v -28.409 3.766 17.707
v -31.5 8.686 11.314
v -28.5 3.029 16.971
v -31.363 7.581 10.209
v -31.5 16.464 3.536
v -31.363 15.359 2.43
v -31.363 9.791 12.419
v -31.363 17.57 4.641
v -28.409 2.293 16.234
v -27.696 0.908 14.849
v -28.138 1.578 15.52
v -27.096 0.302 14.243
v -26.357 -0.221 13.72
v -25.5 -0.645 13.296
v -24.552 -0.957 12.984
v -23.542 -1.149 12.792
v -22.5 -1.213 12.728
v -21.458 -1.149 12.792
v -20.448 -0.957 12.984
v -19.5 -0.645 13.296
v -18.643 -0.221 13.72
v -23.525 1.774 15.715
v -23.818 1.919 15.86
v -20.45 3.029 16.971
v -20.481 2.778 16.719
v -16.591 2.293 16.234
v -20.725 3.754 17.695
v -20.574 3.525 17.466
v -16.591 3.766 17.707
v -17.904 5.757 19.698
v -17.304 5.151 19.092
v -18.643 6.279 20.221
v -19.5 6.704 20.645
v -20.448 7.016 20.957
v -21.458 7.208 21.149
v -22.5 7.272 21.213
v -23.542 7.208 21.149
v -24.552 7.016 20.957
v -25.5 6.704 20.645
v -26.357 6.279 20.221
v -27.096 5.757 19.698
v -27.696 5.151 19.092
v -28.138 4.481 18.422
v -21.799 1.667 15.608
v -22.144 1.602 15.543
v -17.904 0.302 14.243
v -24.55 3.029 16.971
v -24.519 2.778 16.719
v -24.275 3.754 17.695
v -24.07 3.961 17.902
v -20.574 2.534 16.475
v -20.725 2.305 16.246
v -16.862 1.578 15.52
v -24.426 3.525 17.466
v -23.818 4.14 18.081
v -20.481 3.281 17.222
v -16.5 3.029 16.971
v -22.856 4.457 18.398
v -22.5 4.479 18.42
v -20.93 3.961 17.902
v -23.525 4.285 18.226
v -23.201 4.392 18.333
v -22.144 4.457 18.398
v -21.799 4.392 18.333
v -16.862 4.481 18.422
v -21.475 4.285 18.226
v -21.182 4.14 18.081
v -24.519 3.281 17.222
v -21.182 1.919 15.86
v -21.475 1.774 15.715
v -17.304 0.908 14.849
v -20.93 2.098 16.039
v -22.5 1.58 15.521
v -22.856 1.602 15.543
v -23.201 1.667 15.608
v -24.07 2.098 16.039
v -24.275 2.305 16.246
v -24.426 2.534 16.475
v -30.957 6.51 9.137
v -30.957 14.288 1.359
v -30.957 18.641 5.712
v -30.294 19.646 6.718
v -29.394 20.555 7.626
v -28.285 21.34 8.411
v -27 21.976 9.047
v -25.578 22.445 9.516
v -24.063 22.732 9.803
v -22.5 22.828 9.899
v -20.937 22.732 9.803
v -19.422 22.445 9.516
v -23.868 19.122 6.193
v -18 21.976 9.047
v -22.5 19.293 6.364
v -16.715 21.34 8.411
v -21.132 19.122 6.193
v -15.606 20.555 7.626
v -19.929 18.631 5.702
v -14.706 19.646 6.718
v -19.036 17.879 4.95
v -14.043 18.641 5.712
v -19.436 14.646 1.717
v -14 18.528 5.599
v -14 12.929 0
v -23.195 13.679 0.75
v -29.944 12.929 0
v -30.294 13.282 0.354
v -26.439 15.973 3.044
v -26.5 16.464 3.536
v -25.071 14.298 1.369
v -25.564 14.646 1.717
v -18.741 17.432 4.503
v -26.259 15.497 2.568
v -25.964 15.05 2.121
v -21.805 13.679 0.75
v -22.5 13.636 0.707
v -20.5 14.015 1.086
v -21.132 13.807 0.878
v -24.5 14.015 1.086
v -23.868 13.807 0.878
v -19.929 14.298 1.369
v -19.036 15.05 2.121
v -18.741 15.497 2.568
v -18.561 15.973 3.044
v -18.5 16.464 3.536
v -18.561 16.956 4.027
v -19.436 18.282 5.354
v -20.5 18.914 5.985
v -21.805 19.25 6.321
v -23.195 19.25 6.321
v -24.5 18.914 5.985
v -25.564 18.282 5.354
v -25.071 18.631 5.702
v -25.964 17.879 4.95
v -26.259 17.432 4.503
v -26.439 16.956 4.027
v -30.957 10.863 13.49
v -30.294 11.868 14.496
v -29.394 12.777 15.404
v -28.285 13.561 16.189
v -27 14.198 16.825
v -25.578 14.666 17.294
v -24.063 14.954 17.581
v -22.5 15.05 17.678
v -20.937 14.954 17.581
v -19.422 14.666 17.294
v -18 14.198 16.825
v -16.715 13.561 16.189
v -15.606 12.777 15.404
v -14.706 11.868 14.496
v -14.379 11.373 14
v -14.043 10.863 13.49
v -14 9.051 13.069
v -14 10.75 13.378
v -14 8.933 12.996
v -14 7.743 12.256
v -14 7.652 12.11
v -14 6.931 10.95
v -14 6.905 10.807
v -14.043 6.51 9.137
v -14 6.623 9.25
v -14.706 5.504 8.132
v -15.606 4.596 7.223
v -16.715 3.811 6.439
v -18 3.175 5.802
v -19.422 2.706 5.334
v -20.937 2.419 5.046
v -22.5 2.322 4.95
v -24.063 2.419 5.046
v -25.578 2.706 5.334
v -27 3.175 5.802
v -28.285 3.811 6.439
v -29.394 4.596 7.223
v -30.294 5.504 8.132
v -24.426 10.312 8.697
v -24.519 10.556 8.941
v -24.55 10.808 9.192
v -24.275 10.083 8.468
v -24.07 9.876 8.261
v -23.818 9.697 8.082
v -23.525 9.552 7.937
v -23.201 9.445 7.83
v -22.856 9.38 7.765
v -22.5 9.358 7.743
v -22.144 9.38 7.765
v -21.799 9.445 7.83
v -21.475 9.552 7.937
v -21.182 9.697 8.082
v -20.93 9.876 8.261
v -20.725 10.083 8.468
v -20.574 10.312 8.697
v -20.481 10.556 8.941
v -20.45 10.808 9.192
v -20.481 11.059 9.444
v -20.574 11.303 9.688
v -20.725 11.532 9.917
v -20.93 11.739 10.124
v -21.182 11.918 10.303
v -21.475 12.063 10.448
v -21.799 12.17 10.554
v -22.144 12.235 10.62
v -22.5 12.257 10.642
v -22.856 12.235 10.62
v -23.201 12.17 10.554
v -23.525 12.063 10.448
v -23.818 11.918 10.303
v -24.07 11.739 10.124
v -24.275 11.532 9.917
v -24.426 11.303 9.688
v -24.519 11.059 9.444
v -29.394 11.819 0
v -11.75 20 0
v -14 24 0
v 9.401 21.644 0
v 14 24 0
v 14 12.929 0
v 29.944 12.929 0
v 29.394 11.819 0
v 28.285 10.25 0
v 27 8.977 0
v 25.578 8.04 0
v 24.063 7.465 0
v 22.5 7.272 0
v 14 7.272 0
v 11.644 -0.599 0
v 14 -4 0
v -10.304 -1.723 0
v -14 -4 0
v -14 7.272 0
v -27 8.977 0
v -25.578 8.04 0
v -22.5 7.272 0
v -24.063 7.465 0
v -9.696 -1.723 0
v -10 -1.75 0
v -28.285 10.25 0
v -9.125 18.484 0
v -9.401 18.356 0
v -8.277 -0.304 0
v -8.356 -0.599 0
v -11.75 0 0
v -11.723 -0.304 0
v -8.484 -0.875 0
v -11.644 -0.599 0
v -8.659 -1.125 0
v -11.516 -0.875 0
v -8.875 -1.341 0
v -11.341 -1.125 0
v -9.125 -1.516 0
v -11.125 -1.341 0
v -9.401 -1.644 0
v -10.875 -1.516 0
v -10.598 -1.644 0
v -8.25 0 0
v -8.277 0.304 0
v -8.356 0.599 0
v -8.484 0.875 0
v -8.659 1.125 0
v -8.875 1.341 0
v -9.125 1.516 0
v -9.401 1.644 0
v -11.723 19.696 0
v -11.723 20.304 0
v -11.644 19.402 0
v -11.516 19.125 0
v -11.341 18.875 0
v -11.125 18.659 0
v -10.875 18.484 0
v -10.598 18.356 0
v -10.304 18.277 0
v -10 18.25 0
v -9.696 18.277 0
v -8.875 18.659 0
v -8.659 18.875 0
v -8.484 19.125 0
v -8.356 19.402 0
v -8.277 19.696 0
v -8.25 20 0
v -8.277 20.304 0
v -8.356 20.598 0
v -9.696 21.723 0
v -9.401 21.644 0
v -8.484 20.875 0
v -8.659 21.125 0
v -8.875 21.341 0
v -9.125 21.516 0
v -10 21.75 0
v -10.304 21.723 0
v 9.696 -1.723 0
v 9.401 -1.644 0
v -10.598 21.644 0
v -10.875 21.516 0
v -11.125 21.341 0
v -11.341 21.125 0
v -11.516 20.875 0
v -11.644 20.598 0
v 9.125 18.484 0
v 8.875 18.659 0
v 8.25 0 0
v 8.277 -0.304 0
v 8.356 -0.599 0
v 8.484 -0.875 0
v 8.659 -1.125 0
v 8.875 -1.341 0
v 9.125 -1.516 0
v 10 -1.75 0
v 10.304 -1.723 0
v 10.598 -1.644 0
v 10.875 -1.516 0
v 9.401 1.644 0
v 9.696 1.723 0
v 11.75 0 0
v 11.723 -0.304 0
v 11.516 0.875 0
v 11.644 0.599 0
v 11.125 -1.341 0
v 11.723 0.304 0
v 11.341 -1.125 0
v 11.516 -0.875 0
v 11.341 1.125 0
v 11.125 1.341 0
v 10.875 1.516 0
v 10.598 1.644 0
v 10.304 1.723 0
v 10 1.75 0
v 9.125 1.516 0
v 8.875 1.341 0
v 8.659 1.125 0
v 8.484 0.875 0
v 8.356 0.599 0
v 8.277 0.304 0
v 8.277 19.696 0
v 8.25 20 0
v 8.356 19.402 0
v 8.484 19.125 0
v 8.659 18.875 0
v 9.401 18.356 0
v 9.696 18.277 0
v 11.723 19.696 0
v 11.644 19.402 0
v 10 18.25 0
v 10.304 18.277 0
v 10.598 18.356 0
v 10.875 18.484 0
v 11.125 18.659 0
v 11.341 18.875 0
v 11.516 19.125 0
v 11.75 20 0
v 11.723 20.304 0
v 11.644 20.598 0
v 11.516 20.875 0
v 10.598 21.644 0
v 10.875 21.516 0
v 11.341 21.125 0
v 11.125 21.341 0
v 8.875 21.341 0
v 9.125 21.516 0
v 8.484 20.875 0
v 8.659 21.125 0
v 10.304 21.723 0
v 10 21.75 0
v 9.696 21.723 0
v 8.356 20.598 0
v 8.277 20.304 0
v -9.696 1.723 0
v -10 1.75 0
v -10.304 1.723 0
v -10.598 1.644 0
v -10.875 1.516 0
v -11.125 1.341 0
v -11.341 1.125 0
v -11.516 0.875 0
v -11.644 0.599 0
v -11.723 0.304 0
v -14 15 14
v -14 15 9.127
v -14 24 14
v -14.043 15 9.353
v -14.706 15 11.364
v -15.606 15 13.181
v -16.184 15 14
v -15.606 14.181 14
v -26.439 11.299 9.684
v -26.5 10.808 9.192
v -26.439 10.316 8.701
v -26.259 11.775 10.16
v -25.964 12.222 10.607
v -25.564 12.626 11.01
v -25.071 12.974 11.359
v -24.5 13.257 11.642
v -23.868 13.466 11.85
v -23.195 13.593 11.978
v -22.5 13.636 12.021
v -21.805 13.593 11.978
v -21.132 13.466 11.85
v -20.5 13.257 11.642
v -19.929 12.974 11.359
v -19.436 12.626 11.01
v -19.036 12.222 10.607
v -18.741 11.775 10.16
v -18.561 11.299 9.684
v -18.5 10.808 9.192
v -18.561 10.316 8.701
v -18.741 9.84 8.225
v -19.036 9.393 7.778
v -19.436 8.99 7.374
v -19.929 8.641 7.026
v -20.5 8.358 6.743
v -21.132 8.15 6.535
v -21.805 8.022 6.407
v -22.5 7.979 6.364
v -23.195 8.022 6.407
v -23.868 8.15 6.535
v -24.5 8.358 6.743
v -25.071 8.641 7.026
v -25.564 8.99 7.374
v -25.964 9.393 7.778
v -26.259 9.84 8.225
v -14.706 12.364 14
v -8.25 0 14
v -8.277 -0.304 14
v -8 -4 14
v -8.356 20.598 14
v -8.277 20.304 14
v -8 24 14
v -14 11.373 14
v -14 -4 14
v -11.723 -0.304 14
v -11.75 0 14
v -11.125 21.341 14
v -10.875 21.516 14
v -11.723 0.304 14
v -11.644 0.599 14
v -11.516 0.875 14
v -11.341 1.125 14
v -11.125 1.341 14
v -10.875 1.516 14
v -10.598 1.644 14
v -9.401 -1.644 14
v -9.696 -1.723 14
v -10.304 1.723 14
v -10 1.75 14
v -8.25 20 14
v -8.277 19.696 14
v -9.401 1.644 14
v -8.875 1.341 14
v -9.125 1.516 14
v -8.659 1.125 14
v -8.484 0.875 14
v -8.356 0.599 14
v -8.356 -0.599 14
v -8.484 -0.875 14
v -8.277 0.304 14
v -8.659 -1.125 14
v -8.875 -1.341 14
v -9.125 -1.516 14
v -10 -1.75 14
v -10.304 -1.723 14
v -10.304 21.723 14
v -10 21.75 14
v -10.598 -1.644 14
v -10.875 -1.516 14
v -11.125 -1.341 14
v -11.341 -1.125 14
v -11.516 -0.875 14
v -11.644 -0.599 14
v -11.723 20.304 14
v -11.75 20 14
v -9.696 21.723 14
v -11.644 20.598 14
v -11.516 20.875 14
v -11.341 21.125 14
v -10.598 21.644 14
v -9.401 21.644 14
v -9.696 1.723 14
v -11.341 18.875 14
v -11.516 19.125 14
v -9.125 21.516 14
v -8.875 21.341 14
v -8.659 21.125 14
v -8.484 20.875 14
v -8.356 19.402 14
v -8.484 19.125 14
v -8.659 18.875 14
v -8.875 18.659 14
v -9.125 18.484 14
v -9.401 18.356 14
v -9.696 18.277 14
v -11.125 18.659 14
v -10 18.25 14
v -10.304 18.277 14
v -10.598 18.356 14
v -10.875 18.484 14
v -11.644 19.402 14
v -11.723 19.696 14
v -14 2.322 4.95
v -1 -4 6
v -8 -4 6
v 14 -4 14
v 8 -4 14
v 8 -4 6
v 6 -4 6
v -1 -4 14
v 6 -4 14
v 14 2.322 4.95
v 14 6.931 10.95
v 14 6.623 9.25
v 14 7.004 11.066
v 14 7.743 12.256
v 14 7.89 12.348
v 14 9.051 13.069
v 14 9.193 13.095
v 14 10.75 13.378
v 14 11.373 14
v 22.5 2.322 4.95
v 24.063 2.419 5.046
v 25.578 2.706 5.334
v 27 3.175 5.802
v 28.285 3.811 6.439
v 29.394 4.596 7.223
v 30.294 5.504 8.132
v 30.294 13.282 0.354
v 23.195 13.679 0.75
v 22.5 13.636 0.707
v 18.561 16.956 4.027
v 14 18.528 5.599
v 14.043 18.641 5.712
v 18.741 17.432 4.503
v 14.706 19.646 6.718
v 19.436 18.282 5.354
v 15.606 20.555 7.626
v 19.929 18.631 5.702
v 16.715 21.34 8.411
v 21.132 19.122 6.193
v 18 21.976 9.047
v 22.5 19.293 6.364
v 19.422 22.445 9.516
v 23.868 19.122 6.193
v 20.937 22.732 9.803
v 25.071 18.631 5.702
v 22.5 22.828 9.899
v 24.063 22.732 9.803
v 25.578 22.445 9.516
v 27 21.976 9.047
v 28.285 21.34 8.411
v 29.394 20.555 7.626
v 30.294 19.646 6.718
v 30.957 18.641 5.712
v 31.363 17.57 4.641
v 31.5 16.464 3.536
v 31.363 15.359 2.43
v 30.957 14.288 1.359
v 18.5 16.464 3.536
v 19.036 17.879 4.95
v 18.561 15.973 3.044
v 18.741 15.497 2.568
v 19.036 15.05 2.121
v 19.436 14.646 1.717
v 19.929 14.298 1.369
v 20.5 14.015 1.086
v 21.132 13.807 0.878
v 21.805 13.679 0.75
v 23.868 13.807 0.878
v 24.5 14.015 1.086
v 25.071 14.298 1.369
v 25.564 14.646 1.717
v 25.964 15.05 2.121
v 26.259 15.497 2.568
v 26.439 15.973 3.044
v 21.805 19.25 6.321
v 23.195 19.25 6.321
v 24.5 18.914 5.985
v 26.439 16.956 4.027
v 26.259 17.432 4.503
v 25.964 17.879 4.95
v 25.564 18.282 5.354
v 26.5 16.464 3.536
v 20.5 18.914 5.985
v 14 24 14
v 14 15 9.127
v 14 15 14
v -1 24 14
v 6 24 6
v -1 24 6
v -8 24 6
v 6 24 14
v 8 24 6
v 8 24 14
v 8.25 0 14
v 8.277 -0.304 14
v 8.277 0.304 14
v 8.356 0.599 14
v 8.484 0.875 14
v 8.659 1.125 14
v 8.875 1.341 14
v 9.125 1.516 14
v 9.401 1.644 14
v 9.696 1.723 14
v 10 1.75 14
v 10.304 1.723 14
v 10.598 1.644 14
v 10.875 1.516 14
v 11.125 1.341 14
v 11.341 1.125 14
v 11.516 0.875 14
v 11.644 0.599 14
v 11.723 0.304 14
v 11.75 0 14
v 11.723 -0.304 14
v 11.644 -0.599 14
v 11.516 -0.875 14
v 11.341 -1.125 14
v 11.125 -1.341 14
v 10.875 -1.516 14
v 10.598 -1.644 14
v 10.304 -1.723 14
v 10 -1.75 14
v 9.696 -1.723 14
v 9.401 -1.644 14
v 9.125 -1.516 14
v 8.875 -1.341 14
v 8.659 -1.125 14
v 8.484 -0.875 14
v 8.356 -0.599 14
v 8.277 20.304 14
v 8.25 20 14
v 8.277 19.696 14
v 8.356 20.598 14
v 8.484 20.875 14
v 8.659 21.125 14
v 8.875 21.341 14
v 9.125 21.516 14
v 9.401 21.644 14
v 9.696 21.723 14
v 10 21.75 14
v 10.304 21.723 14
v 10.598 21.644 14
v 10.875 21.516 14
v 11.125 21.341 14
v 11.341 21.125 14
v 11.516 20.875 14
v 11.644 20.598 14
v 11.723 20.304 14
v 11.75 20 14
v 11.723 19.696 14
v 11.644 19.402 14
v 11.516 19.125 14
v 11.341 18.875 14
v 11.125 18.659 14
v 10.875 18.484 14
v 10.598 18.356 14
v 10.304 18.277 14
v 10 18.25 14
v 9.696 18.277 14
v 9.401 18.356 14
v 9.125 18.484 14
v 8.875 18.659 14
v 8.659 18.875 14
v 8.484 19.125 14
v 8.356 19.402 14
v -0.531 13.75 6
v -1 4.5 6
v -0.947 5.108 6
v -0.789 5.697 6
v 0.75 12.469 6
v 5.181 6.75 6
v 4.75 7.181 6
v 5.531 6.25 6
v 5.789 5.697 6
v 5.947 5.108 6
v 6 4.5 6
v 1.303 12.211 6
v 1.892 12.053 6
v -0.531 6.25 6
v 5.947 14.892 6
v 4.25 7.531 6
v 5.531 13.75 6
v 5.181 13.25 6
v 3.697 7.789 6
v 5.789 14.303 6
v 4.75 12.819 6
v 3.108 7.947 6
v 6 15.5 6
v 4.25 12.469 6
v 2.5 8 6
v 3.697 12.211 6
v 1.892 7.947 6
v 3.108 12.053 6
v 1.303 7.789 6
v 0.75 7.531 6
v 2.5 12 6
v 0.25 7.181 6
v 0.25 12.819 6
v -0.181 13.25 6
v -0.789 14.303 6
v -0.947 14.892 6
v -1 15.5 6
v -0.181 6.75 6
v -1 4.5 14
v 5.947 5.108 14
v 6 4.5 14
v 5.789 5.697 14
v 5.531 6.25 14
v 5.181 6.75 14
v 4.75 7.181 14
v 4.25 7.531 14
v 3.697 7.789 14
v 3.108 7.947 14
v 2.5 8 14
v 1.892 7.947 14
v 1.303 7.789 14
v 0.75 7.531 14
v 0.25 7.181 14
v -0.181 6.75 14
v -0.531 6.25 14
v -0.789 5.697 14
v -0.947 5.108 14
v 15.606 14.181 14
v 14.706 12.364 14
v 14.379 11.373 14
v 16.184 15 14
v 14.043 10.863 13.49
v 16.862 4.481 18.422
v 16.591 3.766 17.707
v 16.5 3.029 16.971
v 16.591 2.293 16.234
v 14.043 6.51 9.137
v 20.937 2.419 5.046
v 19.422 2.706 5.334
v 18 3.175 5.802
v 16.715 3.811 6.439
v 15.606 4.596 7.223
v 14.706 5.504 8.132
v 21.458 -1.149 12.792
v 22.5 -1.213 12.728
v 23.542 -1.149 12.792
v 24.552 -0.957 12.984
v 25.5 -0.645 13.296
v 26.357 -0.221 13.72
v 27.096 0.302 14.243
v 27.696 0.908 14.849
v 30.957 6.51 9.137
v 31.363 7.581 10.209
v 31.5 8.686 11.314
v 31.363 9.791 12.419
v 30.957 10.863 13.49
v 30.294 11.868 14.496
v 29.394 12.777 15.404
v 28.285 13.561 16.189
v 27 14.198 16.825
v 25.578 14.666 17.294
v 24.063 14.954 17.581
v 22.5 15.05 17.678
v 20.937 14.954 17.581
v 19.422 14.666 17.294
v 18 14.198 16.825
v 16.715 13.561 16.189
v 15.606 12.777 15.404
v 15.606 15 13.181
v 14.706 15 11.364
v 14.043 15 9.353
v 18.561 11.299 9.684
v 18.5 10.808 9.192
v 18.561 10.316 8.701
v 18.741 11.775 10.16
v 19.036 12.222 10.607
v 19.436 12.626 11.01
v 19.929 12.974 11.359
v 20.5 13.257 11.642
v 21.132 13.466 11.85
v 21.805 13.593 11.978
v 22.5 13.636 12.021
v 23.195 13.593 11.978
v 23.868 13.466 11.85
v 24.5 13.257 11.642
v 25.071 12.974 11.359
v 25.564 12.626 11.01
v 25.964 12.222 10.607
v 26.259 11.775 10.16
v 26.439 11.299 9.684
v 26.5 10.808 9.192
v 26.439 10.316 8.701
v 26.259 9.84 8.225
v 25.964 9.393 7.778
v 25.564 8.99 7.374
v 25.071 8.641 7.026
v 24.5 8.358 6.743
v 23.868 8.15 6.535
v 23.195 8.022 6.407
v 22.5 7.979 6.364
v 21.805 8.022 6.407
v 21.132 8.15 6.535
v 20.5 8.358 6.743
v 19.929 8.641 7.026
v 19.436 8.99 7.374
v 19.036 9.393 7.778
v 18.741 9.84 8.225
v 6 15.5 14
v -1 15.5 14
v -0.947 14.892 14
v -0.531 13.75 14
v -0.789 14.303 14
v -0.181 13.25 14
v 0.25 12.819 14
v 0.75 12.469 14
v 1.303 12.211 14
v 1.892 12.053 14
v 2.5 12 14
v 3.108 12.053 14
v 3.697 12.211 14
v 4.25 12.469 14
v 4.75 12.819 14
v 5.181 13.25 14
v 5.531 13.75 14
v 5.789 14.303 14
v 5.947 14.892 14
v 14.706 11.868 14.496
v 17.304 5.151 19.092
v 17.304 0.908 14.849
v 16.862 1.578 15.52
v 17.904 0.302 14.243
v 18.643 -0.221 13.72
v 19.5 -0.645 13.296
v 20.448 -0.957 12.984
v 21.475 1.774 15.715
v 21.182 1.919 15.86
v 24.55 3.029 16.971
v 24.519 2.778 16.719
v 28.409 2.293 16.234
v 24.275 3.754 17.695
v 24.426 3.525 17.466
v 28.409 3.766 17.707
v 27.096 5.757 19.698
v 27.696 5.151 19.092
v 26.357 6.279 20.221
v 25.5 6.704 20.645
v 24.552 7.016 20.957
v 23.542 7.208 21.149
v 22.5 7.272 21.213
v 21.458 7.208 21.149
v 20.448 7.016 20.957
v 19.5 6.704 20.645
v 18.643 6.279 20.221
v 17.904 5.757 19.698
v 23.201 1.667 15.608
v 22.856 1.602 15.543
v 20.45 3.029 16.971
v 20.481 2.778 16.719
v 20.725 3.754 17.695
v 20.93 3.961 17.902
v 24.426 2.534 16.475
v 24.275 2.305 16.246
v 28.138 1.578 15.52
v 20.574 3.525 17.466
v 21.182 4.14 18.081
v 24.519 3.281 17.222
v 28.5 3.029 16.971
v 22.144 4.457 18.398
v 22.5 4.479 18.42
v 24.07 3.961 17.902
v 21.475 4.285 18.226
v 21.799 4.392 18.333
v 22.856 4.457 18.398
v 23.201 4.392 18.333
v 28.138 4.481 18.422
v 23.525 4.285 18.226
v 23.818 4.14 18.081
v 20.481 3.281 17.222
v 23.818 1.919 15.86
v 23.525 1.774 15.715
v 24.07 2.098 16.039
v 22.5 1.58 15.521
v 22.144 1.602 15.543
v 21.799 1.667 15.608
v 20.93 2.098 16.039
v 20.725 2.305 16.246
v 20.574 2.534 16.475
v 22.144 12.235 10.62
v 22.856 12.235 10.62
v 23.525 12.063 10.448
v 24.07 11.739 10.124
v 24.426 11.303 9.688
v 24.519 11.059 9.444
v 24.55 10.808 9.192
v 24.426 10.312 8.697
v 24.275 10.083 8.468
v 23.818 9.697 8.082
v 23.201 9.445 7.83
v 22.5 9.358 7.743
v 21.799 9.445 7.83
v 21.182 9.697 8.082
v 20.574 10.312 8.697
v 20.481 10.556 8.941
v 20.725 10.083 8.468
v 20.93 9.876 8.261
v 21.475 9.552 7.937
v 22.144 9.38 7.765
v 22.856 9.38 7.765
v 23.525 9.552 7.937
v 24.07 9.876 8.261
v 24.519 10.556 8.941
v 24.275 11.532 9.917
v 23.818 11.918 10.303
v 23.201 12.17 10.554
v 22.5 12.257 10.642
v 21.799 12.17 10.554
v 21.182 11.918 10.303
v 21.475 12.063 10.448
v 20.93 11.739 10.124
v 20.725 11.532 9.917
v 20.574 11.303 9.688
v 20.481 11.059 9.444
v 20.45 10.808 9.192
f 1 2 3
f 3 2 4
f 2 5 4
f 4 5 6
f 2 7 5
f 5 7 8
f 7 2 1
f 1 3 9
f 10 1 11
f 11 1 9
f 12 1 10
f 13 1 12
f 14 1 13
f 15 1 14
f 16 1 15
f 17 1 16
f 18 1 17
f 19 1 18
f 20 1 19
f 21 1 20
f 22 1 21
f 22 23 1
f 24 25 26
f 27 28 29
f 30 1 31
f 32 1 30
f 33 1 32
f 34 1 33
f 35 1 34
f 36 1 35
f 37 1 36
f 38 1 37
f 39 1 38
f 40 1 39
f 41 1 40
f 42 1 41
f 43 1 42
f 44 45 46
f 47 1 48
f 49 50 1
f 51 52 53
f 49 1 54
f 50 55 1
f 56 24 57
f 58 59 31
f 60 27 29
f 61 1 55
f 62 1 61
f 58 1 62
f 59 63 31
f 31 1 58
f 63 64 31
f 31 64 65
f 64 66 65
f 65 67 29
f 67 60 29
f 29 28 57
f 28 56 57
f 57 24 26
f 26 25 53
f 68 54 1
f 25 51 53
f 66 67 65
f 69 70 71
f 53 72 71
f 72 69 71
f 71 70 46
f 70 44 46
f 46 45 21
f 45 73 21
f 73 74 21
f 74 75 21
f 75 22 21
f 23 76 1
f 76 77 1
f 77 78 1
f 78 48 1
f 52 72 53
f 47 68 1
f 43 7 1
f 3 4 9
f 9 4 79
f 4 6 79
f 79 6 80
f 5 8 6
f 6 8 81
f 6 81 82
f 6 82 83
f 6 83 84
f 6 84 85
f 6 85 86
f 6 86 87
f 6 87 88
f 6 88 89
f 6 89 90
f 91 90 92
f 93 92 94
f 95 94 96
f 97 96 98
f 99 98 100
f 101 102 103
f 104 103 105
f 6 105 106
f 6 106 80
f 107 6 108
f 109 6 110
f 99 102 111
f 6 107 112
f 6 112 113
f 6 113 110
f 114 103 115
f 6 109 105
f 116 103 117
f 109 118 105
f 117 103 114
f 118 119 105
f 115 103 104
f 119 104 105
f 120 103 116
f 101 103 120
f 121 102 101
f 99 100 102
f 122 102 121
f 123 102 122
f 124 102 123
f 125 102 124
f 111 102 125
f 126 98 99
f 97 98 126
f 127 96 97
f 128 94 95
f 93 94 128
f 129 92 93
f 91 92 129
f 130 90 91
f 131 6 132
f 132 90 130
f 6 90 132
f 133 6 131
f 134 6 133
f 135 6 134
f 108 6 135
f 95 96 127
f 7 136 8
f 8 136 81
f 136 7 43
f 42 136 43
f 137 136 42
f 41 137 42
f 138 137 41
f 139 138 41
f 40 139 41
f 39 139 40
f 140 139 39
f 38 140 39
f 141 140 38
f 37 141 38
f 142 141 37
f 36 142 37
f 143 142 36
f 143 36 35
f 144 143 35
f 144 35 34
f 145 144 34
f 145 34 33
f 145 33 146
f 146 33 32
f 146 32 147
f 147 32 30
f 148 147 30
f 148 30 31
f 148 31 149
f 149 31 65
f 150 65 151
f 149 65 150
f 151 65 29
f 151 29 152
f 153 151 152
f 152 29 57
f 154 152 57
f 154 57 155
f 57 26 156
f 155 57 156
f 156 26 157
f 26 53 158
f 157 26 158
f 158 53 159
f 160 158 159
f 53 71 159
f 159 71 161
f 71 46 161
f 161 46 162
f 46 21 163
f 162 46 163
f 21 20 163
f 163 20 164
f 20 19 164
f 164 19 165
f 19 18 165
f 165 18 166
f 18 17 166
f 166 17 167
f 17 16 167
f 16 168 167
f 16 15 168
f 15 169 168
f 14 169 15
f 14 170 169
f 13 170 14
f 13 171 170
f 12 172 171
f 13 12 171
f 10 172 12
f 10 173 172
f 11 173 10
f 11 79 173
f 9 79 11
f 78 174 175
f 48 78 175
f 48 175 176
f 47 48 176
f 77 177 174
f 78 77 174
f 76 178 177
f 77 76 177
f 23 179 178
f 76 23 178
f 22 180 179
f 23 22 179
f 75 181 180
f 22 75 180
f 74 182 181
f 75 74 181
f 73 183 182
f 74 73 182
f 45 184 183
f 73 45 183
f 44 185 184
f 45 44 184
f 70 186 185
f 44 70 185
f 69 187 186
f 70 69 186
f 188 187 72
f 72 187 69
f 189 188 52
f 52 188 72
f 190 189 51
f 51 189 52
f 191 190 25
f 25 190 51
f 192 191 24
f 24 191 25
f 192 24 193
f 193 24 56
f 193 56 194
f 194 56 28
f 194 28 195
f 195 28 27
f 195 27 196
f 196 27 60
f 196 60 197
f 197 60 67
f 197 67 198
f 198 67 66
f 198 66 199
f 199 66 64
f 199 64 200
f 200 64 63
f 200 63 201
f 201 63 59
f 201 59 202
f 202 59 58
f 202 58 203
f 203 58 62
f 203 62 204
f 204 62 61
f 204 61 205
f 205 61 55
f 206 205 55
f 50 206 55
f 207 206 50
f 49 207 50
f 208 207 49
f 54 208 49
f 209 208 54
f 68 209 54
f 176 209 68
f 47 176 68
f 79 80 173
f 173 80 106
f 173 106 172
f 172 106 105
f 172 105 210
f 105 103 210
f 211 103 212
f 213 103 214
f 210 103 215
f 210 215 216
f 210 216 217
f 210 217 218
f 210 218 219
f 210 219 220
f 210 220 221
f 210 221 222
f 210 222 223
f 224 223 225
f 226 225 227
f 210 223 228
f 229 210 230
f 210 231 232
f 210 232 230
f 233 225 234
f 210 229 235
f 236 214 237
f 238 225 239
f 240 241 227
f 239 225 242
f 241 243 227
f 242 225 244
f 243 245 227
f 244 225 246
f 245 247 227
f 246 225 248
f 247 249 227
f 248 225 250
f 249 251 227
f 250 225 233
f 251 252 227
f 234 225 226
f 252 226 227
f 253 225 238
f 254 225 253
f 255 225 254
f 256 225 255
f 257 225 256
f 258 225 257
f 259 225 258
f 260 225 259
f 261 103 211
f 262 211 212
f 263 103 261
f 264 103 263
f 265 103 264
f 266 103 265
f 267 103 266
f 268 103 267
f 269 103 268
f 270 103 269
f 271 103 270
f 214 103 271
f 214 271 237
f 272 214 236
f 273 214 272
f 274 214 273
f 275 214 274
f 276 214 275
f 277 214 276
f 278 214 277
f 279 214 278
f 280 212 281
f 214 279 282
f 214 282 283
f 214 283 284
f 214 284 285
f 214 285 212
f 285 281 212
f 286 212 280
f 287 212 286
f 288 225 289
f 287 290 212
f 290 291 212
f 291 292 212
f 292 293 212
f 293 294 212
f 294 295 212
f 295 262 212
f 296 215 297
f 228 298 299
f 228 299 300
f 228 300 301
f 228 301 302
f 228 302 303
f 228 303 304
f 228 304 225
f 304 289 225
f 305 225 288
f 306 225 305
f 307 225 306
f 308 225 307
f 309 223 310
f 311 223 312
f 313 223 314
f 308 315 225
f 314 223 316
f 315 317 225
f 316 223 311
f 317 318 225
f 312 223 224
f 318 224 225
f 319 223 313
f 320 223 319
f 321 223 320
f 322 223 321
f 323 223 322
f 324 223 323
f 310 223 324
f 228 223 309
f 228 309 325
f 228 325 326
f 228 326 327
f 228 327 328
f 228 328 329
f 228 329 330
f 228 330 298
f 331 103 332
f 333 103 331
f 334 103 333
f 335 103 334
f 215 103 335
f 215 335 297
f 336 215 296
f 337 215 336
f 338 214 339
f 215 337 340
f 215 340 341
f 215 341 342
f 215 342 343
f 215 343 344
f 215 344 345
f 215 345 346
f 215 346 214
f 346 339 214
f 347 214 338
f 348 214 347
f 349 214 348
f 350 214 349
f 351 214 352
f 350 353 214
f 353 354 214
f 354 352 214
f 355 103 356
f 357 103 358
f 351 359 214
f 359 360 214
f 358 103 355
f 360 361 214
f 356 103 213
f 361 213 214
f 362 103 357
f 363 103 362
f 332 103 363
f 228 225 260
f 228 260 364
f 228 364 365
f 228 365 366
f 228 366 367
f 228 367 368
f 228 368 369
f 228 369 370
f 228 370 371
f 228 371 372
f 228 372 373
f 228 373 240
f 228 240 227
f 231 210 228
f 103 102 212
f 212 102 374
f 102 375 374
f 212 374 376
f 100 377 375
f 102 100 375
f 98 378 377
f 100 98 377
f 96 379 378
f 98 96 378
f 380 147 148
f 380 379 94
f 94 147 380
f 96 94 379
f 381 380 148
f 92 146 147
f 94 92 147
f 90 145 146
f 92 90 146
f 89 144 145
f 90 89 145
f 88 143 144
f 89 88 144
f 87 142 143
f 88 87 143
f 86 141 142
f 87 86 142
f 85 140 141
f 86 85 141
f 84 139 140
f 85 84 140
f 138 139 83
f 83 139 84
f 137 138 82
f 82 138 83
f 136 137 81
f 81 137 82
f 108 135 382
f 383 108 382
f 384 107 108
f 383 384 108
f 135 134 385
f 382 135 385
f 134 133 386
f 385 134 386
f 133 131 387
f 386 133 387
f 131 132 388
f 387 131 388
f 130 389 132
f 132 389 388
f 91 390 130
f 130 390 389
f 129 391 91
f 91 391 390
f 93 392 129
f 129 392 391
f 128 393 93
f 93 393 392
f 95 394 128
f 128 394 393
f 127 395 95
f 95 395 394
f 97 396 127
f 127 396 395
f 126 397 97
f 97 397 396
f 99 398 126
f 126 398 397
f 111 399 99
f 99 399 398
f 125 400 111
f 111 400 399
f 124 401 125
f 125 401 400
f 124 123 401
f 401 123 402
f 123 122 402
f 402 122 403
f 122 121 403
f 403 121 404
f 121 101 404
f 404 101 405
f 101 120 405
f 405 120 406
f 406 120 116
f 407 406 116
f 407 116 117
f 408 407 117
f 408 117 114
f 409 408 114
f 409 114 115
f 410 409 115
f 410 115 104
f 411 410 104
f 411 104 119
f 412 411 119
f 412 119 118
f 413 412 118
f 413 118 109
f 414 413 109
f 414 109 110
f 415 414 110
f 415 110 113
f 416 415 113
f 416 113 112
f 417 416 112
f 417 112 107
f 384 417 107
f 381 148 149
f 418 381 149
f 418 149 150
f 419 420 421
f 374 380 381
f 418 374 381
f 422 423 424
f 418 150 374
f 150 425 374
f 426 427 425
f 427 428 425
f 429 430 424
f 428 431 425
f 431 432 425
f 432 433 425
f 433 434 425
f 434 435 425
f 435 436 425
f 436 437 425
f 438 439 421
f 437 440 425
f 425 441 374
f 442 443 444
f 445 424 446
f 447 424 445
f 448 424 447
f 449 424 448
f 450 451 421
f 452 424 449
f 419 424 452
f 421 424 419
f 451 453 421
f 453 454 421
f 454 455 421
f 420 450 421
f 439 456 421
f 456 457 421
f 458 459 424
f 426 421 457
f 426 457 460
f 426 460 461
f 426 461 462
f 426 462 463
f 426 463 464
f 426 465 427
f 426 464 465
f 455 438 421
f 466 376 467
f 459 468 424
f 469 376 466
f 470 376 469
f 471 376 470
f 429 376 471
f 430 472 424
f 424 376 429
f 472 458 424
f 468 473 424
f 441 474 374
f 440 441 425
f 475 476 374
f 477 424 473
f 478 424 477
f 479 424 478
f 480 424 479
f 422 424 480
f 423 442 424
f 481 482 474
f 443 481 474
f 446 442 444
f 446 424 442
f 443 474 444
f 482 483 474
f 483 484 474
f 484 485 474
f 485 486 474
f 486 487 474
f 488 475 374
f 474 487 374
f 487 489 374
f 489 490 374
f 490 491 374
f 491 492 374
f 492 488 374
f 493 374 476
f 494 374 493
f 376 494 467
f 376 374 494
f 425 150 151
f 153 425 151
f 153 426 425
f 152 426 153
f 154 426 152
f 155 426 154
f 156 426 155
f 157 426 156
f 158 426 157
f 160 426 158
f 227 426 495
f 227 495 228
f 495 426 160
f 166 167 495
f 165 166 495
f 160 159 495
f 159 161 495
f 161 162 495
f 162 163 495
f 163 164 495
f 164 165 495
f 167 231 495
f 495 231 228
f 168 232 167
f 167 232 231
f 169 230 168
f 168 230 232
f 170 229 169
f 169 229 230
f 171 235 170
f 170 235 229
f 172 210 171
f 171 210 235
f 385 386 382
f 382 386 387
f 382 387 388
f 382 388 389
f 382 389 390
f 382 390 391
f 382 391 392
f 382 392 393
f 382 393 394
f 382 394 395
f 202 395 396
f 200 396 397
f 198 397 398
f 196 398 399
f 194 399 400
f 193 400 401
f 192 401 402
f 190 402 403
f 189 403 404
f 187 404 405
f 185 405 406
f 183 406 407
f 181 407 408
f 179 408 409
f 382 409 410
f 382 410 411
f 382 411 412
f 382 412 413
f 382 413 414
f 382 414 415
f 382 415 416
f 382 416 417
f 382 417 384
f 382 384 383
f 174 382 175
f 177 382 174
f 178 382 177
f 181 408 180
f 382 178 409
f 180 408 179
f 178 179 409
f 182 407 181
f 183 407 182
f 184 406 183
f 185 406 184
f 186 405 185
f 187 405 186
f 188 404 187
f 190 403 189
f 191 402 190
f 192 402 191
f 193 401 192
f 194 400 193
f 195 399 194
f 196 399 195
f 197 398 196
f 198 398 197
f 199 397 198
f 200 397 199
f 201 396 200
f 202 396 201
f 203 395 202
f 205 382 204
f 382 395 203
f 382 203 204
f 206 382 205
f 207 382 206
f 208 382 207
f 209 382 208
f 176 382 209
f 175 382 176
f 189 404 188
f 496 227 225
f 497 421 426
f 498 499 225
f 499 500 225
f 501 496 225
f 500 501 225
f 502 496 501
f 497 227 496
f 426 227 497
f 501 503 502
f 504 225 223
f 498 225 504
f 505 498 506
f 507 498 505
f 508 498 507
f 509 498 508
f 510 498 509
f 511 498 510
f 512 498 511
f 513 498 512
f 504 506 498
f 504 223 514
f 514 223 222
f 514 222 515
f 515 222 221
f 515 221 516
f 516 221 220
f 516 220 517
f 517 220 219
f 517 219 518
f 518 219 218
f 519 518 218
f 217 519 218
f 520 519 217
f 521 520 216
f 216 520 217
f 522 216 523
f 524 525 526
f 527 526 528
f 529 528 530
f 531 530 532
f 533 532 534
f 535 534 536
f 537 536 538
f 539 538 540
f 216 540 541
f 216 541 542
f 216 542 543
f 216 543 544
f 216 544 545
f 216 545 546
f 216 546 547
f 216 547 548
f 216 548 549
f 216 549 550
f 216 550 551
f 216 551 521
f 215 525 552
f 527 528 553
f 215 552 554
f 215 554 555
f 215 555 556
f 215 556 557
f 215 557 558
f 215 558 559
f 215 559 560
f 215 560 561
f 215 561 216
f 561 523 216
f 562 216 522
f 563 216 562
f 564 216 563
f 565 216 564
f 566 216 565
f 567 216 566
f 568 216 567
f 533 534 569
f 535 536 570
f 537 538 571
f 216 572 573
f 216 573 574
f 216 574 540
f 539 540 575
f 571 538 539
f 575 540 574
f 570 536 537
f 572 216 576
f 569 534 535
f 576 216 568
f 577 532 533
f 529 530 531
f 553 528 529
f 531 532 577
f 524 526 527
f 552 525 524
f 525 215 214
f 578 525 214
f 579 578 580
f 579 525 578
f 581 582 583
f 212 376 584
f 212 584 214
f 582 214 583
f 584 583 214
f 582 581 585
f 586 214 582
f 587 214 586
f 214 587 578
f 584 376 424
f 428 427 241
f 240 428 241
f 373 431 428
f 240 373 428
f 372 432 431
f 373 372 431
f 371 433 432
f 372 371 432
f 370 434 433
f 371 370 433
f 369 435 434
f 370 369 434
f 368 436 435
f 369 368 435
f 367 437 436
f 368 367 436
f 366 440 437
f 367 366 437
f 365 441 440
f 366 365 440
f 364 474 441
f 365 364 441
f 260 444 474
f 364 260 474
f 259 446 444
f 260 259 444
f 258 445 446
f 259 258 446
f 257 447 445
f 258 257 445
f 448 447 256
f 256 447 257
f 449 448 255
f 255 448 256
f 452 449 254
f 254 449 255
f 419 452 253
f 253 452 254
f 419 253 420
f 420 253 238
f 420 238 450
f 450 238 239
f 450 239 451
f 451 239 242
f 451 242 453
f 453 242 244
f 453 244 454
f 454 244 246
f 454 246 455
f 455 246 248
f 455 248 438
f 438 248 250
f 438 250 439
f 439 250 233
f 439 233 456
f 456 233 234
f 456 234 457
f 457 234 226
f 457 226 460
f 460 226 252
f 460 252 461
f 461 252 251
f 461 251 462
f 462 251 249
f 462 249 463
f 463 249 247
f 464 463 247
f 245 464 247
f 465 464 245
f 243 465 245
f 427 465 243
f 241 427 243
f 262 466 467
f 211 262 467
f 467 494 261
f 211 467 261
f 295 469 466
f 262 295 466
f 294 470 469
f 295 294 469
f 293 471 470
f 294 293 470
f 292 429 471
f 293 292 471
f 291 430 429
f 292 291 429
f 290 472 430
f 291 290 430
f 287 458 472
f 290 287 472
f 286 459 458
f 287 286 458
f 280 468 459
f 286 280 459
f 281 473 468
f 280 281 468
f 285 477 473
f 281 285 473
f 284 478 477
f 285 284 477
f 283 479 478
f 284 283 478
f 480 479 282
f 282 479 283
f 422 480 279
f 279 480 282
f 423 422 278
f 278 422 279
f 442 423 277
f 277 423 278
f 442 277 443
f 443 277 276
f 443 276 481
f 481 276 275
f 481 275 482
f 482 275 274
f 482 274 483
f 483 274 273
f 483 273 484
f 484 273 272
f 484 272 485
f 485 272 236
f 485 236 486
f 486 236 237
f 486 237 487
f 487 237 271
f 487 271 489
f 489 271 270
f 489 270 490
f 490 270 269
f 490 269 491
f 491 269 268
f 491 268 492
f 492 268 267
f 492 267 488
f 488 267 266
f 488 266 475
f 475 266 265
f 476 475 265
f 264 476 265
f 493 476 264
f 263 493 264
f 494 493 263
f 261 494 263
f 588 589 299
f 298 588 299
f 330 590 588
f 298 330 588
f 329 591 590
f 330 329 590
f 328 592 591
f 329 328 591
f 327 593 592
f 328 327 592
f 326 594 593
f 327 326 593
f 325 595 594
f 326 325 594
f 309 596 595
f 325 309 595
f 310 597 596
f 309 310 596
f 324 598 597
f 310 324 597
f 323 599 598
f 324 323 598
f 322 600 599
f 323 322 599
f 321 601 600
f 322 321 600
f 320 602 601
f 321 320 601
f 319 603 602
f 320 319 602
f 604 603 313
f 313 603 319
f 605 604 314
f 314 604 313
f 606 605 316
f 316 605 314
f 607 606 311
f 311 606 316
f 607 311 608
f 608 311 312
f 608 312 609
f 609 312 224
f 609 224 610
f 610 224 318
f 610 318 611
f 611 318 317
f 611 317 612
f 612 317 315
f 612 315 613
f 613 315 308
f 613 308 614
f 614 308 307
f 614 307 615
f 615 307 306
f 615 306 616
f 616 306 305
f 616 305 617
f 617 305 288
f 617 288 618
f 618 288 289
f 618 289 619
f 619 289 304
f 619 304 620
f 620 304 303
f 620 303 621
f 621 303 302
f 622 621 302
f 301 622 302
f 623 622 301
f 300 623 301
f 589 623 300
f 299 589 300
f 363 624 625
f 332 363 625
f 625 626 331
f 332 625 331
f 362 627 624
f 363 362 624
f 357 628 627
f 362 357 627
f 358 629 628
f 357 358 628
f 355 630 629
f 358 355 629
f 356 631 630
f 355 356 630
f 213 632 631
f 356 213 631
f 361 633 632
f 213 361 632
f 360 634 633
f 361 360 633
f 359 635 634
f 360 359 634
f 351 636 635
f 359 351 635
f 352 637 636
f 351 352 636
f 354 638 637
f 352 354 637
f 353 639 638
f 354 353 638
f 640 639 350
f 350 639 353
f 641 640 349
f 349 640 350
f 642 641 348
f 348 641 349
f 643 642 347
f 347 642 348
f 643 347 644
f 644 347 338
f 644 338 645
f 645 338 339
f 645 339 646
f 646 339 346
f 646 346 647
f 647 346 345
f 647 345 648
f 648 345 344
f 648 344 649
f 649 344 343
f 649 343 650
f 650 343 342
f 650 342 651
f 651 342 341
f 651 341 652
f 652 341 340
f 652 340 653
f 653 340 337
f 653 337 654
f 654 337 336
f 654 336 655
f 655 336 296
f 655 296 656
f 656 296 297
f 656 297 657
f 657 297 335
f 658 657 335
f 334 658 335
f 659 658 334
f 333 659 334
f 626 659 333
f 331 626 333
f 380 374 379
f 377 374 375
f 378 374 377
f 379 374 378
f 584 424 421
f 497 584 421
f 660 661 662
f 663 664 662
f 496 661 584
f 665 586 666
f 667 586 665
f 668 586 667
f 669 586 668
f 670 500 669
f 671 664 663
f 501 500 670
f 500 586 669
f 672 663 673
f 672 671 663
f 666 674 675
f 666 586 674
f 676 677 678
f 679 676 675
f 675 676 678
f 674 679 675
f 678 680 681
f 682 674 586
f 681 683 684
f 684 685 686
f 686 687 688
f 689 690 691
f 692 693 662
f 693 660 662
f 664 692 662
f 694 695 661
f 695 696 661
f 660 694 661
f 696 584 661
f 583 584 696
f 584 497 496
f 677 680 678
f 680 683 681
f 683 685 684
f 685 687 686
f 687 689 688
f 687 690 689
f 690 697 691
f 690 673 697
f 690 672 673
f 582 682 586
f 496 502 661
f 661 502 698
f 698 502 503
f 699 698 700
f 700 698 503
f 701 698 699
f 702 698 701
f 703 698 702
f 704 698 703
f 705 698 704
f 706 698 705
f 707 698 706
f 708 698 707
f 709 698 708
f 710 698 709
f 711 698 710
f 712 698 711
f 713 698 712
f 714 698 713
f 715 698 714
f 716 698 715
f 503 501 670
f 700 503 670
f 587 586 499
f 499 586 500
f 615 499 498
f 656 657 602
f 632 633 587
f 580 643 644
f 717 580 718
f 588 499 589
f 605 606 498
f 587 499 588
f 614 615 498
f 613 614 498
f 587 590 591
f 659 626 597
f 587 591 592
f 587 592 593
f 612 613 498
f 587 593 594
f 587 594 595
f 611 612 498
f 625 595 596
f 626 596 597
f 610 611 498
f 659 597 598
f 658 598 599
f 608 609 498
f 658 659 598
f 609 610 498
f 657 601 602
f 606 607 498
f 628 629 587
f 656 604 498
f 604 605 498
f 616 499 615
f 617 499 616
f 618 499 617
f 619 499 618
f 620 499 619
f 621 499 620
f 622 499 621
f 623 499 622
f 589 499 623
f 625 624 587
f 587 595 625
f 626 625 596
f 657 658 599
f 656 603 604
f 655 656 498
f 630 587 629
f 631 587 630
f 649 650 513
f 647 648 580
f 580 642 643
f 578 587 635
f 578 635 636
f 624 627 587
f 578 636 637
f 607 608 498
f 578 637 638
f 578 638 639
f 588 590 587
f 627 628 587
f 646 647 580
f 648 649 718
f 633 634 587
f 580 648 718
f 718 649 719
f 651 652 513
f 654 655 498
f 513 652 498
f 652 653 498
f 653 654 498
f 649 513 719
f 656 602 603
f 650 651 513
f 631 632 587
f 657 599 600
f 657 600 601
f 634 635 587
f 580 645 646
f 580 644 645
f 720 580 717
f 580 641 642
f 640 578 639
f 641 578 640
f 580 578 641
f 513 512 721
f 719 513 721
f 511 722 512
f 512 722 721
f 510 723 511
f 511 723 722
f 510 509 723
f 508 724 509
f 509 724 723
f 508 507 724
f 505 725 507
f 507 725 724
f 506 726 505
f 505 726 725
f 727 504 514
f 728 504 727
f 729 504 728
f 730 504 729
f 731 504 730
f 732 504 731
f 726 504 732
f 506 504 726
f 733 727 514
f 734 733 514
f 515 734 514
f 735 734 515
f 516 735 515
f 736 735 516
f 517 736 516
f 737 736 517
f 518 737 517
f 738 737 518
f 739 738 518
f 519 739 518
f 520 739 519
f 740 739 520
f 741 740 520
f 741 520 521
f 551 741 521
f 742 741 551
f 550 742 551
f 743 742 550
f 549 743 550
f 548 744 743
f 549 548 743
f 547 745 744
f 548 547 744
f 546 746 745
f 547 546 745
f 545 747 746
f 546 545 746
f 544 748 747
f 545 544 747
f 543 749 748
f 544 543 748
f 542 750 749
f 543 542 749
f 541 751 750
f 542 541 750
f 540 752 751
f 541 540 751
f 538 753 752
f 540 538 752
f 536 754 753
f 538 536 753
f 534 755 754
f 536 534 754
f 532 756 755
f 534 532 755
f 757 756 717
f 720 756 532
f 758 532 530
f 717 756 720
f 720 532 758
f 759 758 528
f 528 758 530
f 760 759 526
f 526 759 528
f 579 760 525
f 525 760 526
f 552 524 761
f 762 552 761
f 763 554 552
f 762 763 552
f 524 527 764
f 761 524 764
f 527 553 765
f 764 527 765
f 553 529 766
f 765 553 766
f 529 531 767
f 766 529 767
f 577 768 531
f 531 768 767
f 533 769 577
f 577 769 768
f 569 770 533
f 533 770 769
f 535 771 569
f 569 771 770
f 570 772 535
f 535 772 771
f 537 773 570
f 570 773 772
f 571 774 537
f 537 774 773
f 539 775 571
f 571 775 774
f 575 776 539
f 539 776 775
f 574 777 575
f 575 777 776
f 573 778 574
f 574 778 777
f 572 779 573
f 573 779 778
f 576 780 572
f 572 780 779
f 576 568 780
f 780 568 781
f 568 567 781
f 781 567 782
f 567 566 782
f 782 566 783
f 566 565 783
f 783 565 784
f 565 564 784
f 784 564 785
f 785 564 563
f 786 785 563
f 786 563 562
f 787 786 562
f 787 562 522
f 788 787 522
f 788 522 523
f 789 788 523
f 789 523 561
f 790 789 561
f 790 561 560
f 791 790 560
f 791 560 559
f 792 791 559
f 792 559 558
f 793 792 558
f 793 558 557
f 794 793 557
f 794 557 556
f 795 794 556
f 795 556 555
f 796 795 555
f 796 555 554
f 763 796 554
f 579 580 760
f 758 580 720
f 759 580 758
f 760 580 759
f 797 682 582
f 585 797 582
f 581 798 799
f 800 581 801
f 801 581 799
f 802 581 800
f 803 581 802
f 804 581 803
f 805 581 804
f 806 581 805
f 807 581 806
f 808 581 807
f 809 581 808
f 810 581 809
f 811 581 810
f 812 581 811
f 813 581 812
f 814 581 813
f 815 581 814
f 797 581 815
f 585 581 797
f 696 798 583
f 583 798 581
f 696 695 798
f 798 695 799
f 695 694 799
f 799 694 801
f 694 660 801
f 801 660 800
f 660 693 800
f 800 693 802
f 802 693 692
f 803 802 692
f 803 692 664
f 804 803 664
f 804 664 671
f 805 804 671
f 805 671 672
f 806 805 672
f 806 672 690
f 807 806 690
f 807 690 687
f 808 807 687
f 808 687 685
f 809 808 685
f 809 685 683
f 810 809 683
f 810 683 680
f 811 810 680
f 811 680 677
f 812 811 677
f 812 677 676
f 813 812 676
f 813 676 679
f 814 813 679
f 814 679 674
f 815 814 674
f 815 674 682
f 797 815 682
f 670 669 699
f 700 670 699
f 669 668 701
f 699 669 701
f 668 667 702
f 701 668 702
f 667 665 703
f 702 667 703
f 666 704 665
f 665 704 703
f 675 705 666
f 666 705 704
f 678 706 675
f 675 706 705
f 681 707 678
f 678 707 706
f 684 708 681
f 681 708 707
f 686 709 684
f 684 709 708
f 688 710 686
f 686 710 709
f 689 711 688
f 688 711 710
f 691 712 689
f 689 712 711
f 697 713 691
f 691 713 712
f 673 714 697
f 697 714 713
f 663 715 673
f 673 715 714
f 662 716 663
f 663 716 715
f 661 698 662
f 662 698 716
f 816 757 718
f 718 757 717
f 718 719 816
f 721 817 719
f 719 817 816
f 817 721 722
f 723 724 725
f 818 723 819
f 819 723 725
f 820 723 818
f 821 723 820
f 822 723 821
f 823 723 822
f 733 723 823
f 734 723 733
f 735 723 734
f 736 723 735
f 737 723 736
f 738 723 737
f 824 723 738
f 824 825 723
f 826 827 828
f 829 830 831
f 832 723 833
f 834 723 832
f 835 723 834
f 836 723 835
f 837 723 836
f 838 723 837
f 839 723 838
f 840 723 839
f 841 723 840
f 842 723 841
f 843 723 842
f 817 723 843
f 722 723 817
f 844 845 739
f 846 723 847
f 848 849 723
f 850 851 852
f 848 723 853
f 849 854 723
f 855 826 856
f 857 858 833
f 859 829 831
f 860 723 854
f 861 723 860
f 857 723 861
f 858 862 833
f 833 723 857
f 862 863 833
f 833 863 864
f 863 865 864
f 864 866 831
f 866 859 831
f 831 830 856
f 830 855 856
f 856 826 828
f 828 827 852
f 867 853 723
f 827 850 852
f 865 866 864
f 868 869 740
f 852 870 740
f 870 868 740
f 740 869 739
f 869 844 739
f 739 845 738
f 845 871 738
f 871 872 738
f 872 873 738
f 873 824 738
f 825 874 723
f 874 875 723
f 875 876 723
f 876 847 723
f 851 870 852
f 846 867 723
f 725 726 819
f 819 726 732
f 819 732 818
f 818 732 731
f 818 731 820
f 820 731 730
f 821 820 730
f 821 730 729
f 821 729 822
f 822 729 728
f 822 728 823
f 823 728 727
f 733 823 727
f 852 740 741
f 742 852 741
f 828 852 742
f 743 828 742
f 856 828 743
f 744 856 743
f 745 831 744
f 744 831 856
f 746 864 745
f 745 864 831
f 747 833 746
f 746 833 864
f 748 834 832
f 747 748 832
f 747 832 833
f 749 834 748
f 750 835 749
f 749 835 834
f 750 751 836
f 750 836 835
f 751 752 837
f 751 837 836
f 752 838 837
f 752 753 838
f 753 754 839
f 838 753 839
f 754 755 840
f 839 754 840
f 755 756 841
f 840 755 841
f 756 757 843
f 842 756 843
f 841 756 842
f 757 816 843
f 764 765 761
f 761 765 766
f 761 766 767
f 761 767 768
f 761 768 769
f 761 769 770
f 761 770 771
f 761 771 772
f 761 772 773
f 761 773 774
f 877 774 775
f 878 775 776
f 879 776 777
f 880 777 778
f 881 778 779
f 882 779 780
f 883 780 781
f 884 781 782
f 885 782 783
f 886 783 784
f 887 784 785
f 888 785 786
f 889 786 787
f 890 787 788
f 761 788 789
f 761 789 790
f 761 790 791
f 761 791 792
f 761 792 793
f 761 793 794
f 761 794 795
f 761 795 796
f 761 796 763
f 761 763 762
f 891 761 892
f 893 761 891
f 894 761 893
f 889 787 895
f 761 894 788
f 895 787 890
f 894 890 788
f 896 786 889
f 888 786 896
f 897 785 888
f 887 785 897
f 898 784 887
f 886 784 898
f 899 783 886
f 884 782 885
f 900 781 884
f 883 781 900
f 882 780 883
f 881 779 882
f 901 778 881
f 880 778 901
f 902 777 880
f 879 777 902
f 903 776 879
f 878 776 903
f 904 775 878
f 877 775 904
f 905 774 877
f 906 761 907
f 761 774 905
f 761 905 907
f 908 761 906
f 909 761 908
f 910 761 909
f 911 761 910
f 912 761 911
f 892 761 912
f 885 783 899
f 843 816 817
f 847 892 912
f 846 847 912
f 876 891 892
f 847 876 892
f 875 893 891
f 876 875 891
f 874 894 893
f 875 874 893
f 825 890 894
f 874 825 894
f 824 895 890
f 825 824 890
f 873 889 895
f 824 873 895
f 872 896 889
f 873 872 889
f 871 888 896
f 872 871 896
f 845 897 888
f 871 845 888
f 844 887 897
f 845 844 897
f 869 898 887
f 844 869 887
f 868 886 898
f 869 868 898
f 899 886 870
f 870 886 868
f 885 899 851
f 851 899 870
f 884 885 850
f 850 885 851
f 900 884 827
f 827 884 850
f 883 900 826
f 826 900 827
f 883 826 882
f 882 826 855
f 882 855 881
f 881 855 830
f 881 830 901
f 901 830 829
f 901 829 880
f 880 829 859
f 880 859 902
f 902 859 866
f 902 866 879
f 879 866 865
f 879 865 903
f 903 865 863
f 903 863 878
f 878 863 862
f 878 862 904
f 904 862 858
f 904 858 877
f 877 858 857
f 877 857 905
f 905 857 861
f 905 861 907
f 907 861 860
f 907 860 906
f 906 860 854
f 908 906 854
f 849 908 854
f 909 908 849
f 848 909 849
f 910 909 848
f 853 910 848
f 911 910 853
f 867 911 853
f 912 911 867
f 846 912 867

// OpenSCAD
// 8 + 10
$fn=36;
separation=45;

union()
{
	
	difference()
	{
		// Solids
		union()
		{
				// Base
				translate( [-14, -4, 0] ) cube( [28,28,14] );	//m3x20mm

				// Magnet mounts - "canons"
				for( x=[-separation,separation])
				{	
					translate([x/2,20,0]) rotate([45,0,0]) 
					{
						translate([0,0,5]) cylinder( d=18, h=11 );
						translate([0,0,16]) cylinder( d1=18, d2=12, h=8 );
					}
				}



				// Support beam
				intersection()
				{
					translate([-separation/2,20,0]) rotate([45,0,0]) translate([0,-9,5]) cube([separation,18,11]);
					translate( [-50, 0, 0] ) cube( [100,15,14] );
				}
		}
	


		// Cutouts

		// Flatten bottom
		translate([-50,-4,-10]) cube([100,28,10]);

		for( x=[-.5*separation,.5*separation] )
		{	
			translate([x, 20,0]) rotate([45,0,0])
			{
				// Thread m4
				cylinder( d=4.1, h=25);
				// Bolt head
				cylinder( d=8, h=13); //m4x20mm
			}

		}

		// mgn12h holes
		for( x=[-10,10] ) for( y=[0,20] ) translate( [ x,y,-0.5 ] ) cylinder( d=3.5, h=15 ); 

		// Room for belts
		translate( [-8, -5, 6] ) cube( [16,32,10] );
	}
	
	// Belt mount
	translate( [-1, -4, 5] ) cube( [7,8.5,9] );
	translate( [-1, 15.5, 5] ) cube( [7,8.5,9] );
	translate( [2.5, 4.5, 5] ) cylinder( r=3.5, h=9 );
	translate( [2.5, 15.5, 5] ) cylinder( r=3.5, h=9 );
	

}
